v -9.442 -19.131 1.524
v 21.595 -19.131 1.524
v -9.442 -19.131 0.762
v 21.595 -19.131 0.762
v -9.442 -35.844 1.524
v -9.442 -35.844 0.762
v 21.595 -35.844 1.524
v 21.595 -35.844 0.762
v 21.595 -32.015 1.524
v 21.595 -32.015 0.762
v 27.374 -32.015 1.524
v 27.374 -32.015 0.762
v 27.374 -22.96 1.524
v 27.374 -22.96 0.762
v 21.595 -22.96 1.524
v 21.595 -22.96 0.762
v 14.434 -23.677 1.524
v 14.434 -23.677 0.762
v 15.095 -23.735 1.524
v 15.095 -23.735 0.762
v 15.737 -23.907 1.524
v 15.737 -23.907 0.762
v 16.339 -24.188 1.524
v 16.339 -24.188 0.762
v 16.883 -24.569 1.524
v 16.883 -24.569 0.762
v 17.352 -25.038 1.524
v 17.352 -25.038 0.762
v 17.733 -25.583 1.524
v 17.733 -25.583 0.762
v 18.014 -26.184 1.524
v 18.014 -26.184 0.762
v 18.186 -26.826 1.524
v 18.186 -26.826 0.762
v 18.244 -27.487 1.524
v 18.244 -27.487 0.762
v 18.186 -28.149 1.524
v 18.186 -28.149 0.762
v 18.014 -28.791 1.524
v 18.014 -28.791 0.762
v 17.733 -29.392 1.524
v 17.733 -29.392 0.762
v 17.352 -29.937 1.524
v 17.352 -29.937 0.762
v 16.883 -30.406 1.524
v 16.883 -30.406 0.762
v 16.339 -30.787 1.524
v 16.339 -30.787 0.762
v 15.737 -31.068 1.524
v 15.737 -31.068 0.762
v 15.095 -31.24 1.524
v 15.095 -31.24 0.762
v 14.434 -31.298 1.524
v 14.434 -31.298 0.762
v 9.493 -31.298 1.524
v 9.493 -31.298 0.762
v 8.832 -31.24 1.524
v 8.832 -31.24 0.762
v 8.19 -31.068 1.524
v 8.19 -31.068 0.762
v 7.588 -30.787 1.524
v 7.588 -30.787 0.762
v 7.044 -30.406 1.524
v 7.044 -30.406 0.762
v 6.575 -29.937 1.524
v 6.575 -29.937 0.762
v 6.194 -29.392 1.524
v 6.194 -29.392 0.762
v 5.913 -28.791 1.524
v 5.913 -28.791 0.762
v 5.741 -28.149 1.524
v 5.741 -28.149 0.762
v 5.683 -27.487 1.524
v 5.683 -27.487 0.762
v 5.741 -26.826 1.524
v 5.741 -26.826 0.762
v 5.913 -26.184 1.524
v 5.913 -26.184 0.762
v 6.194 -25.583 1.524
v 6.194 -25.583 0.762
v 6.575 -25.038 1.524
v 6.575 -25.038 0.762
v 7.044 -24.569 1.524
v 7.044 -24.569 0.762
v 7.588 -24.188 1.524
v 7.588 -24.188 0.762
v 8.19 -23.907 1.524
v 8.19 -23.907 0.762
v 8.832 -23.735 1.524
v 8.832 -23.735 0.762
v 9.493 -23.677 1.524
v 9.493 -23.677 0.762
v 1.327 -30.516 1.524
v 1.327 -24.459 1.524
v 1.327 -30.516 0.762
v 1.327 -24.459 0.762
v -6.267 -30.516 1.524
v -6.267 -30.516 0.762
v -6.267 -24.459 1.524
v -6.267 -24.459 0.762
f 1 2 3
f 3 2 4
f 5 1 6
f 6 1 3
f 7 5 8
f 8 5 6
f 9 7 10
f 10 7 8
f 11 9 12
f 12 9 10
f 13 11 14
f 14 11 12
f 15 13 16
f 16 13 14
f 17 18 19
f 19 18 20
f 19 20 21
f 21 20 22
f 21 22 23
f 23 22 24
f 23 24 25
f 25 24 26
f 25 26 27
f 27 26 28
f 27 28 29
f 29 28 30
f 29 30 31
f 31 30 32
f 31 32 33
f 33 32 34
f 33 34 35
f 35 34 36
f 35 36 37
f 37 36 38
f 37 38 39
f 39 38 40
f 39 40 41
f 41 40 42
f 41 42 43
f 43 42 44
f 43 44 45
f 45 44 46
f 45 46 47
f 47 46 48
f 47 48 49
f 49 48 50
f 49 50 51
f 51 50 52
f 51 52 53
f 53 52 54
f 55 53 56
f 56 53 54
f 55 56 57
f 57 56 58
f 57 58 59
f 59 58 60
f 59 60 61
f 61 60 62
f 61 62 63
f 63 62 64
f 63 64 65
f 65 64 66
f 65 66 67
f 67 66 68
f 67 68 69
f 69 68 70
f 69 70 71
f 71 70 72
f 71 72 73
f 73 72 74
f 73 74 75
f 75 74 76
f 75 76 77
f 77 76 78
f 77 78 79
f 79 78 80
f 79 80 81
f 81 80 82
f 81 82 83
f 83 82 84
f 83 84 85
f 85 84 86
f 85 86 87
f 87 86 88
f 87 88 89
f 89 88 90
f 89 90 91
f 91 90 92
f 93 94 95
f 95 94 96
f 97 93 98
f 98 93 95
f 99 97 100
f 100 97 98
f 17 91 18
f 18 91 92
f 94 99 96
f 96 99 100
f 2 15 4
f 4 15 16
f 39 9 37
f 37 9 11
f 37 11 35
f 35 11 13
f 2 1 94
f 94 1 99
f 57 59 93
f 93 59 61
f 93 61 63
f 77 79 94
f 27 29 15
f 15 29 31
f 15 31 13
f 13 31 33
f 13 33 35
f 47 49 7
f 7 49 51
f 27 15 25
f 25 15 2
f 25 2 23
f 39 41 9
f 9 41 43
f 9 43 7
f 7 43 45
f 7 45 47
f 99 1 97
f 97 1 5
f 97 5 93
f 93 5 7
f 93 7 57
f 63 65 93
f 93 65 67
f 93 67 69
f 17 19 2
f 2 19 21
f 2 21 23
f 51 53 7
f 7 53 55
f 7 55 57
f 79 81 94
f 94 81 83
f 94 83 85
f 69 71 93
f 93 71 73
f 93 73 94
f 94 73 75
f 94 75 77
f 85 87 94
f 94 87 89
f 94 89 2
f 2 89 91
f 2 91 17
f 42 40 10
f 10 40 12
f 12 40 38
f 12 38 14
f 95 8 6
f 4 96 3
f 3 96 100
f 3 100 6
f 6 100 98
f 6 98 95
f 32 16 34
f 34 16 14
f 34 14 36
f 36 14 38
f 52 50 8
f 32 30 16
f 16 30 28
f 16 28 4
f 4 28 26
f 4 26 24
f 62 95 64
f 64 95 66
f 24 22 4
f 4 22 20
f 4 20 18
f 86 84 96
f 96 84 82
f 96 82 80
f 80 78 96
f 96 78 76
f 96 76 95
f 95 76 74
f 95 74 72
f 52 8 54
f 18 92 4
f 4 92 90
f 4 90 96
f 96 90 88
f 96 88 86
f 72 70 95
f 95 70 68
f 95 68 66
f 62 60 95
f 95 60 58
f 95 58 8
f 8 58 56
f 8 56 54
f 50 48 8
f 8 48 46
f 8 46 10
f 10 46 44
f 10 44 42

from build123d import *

# Parameters (mm, degrees)
BOSS_EXTRUDE2_DEPTH = 0.762


with BuildPart() as part:
    # Sketch1 → Boss-Extrude2 (new body)
    with BuildSketch(Plane.XY.offset(0.762)):
        with BuildLine():
            Line((21.595288772, -19.1309), (-9.44245, -19.1309))
            Line((-9.44245, -19.1309), (-9.44245, -20.7184))
            Line((-9.44245, -20.7184), (14.94155, -20.7184))
            ThreePointArc((14.94155, -20.7184), (16.737601224, -21.462348776), (17.48155, -23.2584))
            Line((17.48155, -23.2584), (17.48155, -25.2015))
            ThreePointArc((17.48155, -25.2015), (18.24355, -27.4875), (17.48155, -29.7735))
            Line((17.48155, -29.7735), (17.48155, -31.7166))
            ThreePointArc((17.48155, -31.7166), (16.737601224, -33.512651224), (14.94155, -34.2566))
            Line((14.94155, -34.2566), (-9.44245, -34.2566))
            Line((-9.44245, -34.2566), (-9.44245, -35.8441))
            Line((-9.44245, -35.8441), (21.595288772, -35.8441))
            Line((21.595288772, -35.8441), (21.595288772, -32.01505))
            Line((21.595288772, -32.01505), (27.373788772, -32.01505))
            Line((27.373788772, -32.01505), (27.373788772, -22.95995))
            Line((27.373788772, -22.95995), (26.103788772, -22.95995))
            Line((26.103788772, -22.95995), (21.595288772, -22.95995))
            Line((21.595288772, -22.95995), (21.595288772, -19.1309))
        make_face()
        with BuildLine():
            Line((14.94155, -20.7184), (-9.44245, -20.7184))
            Line((-9.44245, -20.7184), (-9.44245, -34.2566))
            Line((-9.44245, -34.2566), (14.94155, -34.2566))
            ThreePointArc((14.94155, -34.2566), (16.737601224, -33.512651224), (17.48155, -31.7166))
            Line((17.48155, -31.7166), (17.48155, -29.7735))
            ThreePointArc((17.48155, -29.7735), (16.137433799, -30.895267598), (14.43355, -31.2975))
            Line((14.43355, -31.2975), (9.49325, -31.2975))
            ThreePointArc((9.49325, -31.2975), (7.419008087, -30.683375543), (6.01345, -29.03898057))
            Line((6.01345, -29.03898057), (6.01345, -30.44025))
            Line((6.01345, -30.44025), (1.32715, -30.44025))
            Line((1.32715, -30.44025), (1.32715, -30.51645))
            Line((1.32715, -30.51645), (-6.26745, -30.51645))
            Line((-6.26745, -30.51645), (-6.26745, -24.45855))
            Line((-6.26745, -24.45855), (1.32715, -24.45855))
            Line((1.32715, -24.45855), (1.32715, -24.53475))
            Line((1.32715, -24.53475), (6.01345, -24.53475))
            Line((6.01345, -24.53475), (6.01345, -25.93601943))
            ThreePointArc((6.01345, -25.93601943), (7.419008087, -24.291624457), (9.49325, -23.6775))
            Line((9.49325, -23.6775), (14.43355, -23.6775))
            ThreePointArc((14.43355, -23.6775), (16.137433799, -24.079732402), (17.48155, -25.2015))
            Line((17.48155, -25.2015), (17.48155, -23.2584))
            ThreePointArc((17.48155, -23.2584), (16.737601224, -21.462348776), (14.94155, -20.7184))
        make_face()
        with BuildLine():
            ThreePointArc((6.01345, -29.03898057), (5.68325, -27.4875), (6.01345, -25.93601943))
            Line((6.01345, -25.93601943), (6.01345, -24.53475))
            Line((6.01345, -24.53475), (1.32715, -24.53475))
            Line((1.32715, -24.53475), (1.32715, -30.44025))
            Line((1.32715, -30.44025), (6.01345, -30.44025))
            Line((6.01345, -30.44025), (6.01345, -29.03898057))
        make_face()
    extrude(amount=BOSS_EXTRUDE2_DEPTH)


solid = part.part
